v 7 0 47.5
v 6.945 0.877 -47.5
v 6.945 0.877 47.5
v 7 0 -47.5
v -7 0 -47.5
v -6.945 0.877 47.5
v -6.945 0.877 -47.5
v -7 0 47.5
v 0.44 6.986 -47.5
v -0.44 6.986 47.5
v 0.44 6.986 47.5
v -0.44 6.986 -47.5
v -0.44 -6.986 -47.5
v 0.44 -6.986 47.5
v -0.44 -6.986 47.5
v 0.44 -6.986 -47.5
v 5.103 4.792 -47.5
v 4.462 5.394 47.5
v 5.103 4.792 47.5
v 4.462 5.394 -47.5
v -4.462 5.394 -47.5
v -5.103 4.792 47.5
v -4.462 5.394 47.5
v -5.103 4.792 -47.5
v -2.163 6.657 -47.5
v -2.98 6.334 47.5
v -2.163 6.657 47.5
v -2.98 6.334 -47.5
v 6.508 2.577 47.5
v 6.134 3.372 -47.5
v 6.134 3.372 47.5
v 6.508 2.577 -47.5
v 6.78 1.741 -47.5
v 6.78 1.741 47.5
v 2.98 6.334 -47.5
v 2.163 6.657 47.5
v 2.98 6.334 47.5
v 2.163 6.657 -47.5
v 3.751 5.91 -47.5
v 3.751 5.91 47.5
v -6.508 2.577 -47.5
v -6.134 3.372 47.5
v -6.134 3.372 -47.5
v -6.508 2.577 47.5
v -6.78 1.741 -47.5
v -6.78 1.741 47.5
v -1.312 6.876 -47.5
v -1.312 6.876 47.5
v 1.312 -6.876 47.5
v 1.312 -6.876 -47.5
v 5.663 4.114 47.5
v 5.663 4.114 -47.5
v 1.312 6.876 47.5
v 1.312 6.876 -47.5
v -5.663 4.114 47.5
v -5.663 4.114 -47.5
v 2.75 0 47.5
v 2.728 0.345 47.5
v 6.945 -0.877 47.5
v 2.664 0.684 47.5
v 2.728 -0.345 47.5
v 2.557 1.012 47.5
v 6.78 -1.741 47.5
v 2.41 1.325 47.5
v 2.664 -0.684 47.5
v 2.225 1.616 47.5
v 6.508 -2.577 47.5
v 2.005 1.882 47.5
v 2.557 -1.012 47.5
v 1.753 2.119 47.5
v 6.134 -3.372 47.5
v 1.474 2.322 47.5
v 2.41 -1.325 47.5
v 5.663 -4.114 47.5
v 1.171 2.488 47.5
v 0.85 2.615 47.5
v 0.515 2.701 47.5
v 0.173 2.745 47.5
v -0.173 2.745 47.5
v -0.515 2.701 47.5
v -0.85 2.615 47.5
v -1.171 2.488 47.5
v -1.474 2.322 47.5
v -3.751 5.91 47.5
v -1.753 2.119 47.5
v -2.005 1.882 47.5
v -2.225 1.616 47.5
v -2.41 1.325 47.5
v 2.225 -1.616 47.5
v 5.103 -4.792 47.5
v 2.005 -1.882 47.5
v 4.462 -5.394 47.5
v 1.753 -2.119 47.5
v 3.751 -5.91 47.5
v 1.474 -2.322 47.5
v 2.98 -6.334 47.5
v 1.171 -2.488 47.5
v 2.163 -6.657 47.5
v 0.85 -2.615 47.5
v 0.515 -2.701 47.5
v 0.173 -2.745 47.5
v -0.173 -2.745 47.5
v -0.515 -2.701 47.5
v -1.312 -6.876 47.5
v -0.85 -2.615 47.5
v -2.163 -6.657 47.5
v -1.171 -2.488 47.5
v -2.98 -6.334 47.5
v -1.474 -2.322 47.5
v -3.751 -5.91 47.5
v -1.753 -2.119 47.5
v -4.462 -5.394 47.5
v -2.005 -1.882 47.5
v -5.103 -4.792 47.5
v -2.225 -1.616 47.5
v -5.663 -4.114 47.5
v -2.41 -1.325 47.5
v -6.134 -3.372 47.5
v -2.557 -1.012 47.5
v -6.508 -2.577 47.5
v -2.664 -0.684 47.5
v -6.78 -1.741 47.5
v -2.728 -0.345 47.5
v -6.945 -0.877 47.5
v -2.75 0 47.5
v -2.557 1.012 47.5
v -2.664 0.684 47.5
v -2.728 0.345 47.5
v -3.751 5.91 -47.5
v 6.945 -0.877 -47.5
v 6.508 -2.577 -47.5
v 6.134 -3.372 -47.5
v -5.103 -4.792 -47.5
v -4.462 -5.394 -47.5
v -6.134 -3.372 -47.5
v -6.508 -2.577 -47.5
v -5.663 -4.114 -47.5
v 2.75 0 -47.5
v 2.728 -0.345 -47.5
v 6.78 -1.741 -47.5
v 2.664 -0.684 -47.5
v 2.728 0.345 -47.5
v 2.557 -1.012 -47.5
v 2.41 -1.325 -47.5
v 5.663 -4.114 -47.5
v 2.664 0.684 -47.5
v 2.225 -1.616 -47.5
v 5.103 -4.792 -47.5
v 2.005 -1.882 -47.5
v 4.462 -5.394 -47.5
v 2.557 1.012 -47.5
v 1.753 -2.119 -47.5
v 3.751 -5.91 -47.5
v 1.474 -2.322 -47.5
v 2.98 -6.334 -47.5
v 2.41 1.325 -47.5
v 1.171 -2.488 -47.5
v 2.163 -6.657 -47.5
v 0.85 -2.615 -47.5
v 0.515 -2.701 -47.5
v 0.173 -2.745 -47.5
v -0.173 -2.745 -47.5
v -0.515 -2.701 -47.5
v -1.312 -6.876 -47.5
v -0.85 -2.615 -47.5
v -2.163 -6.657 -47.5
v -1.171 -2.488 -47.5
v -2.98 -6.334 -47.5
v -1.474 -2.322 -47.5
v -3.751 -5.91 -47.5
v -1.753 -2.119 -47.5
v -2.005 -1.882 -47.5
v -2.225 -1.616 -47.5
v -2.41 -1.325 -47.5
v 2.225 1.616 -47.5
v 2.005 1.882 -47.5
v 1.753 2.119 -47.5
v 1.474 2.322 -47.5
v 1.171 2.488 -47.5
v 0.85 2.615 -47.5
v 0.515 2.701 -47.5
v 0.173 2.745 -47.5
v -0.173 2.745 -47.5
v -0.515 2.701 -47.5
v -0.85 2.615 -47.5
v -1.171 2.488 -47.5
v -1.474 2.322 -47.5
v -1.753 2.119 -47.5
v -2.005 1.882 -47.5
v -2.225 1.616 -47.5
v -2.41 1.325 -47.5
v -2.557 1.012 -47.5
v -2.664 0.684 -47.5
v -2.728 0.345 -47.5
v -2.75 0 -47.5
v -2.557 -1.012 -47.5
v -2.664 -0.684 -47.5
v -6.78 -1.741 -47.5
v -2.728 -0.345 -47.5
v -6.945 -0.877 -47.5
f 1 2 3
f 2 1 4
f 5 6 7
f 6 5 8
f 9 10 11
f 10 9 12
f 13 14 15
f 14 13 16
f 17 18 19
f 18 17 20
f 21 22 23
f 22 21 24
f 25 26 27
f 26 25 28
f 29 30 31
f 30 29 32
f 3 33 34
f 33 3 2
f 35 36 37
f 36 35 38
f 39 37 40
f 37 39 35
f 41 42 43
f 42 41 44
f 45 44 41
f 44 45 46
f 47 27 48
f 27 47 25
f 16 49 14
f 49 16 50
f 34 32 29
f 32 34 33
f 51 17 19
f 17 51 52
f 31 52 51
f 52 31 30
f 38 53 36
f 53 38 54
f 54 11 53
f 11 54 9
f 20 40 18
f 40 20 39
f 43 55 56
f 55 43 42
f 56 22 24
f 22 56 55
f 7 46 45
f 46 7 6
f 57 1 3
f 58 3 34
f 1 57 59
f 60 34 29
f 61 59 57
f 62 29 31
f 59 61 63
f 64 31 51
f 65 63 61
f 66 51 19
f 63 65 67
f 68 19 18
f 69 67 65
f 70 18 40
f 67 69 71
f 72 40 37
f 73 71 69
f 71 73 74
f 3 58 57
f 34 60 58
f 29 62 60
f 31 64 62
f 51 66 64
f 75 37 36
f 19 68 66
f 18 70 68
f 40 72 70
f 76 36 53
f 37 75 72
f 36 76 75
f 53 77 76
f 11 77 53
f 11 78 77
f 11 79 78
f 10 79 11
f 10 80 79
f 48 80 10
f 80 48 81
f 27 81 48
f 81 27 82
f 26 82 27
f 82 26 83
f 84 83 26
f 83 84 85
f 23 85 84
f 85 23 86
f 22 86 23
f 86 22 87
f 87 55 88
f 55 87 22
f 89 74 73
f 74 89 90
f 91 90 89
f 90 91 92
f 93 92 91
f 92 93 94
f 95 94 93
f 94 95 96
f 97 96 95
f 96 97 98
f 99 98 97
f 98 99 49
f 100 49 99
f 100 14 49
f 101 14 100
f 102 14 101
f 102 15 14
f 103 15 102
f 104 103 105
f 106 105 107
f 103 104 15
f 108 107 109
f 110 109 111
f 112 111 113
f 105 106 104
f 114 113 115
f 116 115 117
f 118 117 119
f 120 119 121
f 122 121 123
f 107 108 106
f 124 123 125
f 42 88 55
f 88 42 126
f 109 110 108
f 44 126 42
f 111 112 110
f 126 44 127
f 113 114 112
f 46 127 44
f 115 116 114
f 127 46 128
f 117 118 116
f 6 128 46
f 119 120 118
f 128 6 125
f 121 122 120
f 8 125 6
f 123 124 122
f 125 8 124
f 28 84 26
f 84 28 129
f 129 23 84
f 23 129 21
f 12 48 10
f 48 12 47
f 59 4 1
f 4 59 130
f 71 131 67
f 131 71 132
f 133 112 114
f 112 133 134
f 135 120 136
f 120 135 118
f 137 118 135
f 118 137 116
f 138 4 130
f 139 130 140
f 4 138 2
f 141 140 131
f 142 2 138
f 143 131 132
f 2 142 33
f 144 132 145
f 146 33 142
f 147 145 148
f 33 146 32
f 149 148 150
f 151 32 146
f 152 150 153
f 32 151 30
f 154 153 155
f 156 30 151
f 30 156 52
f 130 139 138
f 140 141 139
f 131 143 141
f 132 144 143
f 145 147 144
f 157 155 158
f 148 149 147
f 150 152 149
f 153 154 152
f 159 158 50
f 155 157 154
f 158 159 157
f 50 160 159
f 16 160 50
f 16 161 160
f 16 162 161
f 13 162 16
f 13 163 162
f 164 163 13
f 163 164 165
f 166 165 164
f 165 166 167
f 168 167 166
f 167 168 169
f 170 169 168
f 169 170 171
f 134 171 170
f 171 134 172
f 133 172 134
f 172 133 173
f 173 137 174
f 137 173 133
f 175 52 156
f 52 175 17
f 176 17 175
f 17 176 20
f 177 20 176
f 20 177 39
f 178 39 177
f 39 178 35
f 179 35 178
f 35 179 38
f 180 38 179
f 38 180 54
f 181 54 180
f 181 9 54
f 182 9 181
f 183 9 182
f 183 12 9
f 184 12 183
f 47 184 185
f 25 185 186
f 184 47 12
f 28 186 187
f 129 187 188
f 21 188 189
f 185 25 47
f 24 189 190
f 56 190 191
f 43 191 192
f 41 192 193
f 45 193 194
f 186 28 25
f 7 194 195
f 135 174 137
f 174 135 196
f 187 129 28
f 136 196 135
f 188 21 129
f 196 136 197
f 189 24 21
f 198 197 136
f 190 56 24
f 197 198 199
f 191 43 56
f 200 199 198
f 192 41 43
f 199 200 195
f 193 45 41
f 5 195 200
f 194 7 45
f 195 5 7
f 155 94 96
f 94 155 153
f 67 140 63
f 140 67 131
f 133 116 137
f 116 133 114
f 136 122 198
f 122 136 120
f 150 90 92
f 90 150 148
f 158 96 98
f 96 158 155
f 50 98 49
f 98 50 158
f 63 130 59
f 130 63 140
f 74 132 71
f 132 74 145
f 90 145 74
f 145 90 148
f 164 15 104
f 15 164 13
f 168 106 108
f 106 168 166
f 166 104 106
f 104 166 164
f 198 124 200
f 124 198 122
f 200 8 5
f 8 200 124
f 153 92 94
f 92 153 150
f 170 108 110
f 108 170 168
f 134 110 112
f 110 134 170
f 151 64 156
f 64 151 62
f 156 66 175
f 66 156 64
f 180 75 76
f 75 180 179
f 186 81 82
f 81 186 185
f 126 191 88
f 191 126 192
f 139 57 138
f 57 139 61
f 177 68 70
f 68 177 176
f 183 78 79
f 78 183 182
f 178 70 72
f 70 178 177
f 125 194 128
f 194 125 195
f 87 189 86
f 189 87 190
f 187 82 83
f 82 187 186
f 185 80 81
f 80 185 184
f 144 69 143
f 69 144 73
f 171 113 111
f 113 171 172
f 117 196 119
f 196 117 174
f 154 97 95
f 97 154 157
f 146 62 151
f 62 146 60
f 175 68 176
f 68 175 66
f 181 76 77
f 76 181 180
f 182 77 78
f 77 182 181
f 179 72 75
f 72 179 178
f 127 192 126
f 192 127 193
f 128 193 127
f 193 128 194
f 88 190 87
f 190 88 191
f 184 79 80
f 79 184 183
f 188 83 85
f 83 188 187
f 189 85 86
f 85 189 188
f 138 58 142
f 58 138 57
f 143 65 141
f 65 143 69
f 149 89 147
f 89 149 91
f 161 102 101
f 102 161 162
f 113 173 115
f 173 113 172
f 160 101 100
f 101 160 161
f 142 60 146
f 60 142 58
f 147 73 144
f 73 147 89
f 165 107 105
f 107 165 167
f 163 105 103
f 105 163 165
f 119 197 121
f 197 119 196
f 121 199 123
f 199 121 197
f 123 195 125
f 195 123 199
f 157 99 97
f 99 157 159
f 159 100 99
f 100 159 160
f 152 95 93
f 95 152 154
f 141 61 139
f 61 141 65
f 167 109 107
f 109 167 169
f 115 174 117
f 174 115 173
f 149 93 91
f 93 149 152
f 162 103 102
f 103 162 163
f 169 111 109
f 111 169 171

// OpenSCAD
$fn = 50;


difference() {
	union() {
		translate(v = [0, 0, -47.5000000000]) {
			cylinder(h = 95, r = 7.0000000000);
		}
	}
	union() {
		translate(v = [0, 0, -100.0000000000]) {
			cylinder(h = 200, r = 2.7500000000);
		}
	}
}
